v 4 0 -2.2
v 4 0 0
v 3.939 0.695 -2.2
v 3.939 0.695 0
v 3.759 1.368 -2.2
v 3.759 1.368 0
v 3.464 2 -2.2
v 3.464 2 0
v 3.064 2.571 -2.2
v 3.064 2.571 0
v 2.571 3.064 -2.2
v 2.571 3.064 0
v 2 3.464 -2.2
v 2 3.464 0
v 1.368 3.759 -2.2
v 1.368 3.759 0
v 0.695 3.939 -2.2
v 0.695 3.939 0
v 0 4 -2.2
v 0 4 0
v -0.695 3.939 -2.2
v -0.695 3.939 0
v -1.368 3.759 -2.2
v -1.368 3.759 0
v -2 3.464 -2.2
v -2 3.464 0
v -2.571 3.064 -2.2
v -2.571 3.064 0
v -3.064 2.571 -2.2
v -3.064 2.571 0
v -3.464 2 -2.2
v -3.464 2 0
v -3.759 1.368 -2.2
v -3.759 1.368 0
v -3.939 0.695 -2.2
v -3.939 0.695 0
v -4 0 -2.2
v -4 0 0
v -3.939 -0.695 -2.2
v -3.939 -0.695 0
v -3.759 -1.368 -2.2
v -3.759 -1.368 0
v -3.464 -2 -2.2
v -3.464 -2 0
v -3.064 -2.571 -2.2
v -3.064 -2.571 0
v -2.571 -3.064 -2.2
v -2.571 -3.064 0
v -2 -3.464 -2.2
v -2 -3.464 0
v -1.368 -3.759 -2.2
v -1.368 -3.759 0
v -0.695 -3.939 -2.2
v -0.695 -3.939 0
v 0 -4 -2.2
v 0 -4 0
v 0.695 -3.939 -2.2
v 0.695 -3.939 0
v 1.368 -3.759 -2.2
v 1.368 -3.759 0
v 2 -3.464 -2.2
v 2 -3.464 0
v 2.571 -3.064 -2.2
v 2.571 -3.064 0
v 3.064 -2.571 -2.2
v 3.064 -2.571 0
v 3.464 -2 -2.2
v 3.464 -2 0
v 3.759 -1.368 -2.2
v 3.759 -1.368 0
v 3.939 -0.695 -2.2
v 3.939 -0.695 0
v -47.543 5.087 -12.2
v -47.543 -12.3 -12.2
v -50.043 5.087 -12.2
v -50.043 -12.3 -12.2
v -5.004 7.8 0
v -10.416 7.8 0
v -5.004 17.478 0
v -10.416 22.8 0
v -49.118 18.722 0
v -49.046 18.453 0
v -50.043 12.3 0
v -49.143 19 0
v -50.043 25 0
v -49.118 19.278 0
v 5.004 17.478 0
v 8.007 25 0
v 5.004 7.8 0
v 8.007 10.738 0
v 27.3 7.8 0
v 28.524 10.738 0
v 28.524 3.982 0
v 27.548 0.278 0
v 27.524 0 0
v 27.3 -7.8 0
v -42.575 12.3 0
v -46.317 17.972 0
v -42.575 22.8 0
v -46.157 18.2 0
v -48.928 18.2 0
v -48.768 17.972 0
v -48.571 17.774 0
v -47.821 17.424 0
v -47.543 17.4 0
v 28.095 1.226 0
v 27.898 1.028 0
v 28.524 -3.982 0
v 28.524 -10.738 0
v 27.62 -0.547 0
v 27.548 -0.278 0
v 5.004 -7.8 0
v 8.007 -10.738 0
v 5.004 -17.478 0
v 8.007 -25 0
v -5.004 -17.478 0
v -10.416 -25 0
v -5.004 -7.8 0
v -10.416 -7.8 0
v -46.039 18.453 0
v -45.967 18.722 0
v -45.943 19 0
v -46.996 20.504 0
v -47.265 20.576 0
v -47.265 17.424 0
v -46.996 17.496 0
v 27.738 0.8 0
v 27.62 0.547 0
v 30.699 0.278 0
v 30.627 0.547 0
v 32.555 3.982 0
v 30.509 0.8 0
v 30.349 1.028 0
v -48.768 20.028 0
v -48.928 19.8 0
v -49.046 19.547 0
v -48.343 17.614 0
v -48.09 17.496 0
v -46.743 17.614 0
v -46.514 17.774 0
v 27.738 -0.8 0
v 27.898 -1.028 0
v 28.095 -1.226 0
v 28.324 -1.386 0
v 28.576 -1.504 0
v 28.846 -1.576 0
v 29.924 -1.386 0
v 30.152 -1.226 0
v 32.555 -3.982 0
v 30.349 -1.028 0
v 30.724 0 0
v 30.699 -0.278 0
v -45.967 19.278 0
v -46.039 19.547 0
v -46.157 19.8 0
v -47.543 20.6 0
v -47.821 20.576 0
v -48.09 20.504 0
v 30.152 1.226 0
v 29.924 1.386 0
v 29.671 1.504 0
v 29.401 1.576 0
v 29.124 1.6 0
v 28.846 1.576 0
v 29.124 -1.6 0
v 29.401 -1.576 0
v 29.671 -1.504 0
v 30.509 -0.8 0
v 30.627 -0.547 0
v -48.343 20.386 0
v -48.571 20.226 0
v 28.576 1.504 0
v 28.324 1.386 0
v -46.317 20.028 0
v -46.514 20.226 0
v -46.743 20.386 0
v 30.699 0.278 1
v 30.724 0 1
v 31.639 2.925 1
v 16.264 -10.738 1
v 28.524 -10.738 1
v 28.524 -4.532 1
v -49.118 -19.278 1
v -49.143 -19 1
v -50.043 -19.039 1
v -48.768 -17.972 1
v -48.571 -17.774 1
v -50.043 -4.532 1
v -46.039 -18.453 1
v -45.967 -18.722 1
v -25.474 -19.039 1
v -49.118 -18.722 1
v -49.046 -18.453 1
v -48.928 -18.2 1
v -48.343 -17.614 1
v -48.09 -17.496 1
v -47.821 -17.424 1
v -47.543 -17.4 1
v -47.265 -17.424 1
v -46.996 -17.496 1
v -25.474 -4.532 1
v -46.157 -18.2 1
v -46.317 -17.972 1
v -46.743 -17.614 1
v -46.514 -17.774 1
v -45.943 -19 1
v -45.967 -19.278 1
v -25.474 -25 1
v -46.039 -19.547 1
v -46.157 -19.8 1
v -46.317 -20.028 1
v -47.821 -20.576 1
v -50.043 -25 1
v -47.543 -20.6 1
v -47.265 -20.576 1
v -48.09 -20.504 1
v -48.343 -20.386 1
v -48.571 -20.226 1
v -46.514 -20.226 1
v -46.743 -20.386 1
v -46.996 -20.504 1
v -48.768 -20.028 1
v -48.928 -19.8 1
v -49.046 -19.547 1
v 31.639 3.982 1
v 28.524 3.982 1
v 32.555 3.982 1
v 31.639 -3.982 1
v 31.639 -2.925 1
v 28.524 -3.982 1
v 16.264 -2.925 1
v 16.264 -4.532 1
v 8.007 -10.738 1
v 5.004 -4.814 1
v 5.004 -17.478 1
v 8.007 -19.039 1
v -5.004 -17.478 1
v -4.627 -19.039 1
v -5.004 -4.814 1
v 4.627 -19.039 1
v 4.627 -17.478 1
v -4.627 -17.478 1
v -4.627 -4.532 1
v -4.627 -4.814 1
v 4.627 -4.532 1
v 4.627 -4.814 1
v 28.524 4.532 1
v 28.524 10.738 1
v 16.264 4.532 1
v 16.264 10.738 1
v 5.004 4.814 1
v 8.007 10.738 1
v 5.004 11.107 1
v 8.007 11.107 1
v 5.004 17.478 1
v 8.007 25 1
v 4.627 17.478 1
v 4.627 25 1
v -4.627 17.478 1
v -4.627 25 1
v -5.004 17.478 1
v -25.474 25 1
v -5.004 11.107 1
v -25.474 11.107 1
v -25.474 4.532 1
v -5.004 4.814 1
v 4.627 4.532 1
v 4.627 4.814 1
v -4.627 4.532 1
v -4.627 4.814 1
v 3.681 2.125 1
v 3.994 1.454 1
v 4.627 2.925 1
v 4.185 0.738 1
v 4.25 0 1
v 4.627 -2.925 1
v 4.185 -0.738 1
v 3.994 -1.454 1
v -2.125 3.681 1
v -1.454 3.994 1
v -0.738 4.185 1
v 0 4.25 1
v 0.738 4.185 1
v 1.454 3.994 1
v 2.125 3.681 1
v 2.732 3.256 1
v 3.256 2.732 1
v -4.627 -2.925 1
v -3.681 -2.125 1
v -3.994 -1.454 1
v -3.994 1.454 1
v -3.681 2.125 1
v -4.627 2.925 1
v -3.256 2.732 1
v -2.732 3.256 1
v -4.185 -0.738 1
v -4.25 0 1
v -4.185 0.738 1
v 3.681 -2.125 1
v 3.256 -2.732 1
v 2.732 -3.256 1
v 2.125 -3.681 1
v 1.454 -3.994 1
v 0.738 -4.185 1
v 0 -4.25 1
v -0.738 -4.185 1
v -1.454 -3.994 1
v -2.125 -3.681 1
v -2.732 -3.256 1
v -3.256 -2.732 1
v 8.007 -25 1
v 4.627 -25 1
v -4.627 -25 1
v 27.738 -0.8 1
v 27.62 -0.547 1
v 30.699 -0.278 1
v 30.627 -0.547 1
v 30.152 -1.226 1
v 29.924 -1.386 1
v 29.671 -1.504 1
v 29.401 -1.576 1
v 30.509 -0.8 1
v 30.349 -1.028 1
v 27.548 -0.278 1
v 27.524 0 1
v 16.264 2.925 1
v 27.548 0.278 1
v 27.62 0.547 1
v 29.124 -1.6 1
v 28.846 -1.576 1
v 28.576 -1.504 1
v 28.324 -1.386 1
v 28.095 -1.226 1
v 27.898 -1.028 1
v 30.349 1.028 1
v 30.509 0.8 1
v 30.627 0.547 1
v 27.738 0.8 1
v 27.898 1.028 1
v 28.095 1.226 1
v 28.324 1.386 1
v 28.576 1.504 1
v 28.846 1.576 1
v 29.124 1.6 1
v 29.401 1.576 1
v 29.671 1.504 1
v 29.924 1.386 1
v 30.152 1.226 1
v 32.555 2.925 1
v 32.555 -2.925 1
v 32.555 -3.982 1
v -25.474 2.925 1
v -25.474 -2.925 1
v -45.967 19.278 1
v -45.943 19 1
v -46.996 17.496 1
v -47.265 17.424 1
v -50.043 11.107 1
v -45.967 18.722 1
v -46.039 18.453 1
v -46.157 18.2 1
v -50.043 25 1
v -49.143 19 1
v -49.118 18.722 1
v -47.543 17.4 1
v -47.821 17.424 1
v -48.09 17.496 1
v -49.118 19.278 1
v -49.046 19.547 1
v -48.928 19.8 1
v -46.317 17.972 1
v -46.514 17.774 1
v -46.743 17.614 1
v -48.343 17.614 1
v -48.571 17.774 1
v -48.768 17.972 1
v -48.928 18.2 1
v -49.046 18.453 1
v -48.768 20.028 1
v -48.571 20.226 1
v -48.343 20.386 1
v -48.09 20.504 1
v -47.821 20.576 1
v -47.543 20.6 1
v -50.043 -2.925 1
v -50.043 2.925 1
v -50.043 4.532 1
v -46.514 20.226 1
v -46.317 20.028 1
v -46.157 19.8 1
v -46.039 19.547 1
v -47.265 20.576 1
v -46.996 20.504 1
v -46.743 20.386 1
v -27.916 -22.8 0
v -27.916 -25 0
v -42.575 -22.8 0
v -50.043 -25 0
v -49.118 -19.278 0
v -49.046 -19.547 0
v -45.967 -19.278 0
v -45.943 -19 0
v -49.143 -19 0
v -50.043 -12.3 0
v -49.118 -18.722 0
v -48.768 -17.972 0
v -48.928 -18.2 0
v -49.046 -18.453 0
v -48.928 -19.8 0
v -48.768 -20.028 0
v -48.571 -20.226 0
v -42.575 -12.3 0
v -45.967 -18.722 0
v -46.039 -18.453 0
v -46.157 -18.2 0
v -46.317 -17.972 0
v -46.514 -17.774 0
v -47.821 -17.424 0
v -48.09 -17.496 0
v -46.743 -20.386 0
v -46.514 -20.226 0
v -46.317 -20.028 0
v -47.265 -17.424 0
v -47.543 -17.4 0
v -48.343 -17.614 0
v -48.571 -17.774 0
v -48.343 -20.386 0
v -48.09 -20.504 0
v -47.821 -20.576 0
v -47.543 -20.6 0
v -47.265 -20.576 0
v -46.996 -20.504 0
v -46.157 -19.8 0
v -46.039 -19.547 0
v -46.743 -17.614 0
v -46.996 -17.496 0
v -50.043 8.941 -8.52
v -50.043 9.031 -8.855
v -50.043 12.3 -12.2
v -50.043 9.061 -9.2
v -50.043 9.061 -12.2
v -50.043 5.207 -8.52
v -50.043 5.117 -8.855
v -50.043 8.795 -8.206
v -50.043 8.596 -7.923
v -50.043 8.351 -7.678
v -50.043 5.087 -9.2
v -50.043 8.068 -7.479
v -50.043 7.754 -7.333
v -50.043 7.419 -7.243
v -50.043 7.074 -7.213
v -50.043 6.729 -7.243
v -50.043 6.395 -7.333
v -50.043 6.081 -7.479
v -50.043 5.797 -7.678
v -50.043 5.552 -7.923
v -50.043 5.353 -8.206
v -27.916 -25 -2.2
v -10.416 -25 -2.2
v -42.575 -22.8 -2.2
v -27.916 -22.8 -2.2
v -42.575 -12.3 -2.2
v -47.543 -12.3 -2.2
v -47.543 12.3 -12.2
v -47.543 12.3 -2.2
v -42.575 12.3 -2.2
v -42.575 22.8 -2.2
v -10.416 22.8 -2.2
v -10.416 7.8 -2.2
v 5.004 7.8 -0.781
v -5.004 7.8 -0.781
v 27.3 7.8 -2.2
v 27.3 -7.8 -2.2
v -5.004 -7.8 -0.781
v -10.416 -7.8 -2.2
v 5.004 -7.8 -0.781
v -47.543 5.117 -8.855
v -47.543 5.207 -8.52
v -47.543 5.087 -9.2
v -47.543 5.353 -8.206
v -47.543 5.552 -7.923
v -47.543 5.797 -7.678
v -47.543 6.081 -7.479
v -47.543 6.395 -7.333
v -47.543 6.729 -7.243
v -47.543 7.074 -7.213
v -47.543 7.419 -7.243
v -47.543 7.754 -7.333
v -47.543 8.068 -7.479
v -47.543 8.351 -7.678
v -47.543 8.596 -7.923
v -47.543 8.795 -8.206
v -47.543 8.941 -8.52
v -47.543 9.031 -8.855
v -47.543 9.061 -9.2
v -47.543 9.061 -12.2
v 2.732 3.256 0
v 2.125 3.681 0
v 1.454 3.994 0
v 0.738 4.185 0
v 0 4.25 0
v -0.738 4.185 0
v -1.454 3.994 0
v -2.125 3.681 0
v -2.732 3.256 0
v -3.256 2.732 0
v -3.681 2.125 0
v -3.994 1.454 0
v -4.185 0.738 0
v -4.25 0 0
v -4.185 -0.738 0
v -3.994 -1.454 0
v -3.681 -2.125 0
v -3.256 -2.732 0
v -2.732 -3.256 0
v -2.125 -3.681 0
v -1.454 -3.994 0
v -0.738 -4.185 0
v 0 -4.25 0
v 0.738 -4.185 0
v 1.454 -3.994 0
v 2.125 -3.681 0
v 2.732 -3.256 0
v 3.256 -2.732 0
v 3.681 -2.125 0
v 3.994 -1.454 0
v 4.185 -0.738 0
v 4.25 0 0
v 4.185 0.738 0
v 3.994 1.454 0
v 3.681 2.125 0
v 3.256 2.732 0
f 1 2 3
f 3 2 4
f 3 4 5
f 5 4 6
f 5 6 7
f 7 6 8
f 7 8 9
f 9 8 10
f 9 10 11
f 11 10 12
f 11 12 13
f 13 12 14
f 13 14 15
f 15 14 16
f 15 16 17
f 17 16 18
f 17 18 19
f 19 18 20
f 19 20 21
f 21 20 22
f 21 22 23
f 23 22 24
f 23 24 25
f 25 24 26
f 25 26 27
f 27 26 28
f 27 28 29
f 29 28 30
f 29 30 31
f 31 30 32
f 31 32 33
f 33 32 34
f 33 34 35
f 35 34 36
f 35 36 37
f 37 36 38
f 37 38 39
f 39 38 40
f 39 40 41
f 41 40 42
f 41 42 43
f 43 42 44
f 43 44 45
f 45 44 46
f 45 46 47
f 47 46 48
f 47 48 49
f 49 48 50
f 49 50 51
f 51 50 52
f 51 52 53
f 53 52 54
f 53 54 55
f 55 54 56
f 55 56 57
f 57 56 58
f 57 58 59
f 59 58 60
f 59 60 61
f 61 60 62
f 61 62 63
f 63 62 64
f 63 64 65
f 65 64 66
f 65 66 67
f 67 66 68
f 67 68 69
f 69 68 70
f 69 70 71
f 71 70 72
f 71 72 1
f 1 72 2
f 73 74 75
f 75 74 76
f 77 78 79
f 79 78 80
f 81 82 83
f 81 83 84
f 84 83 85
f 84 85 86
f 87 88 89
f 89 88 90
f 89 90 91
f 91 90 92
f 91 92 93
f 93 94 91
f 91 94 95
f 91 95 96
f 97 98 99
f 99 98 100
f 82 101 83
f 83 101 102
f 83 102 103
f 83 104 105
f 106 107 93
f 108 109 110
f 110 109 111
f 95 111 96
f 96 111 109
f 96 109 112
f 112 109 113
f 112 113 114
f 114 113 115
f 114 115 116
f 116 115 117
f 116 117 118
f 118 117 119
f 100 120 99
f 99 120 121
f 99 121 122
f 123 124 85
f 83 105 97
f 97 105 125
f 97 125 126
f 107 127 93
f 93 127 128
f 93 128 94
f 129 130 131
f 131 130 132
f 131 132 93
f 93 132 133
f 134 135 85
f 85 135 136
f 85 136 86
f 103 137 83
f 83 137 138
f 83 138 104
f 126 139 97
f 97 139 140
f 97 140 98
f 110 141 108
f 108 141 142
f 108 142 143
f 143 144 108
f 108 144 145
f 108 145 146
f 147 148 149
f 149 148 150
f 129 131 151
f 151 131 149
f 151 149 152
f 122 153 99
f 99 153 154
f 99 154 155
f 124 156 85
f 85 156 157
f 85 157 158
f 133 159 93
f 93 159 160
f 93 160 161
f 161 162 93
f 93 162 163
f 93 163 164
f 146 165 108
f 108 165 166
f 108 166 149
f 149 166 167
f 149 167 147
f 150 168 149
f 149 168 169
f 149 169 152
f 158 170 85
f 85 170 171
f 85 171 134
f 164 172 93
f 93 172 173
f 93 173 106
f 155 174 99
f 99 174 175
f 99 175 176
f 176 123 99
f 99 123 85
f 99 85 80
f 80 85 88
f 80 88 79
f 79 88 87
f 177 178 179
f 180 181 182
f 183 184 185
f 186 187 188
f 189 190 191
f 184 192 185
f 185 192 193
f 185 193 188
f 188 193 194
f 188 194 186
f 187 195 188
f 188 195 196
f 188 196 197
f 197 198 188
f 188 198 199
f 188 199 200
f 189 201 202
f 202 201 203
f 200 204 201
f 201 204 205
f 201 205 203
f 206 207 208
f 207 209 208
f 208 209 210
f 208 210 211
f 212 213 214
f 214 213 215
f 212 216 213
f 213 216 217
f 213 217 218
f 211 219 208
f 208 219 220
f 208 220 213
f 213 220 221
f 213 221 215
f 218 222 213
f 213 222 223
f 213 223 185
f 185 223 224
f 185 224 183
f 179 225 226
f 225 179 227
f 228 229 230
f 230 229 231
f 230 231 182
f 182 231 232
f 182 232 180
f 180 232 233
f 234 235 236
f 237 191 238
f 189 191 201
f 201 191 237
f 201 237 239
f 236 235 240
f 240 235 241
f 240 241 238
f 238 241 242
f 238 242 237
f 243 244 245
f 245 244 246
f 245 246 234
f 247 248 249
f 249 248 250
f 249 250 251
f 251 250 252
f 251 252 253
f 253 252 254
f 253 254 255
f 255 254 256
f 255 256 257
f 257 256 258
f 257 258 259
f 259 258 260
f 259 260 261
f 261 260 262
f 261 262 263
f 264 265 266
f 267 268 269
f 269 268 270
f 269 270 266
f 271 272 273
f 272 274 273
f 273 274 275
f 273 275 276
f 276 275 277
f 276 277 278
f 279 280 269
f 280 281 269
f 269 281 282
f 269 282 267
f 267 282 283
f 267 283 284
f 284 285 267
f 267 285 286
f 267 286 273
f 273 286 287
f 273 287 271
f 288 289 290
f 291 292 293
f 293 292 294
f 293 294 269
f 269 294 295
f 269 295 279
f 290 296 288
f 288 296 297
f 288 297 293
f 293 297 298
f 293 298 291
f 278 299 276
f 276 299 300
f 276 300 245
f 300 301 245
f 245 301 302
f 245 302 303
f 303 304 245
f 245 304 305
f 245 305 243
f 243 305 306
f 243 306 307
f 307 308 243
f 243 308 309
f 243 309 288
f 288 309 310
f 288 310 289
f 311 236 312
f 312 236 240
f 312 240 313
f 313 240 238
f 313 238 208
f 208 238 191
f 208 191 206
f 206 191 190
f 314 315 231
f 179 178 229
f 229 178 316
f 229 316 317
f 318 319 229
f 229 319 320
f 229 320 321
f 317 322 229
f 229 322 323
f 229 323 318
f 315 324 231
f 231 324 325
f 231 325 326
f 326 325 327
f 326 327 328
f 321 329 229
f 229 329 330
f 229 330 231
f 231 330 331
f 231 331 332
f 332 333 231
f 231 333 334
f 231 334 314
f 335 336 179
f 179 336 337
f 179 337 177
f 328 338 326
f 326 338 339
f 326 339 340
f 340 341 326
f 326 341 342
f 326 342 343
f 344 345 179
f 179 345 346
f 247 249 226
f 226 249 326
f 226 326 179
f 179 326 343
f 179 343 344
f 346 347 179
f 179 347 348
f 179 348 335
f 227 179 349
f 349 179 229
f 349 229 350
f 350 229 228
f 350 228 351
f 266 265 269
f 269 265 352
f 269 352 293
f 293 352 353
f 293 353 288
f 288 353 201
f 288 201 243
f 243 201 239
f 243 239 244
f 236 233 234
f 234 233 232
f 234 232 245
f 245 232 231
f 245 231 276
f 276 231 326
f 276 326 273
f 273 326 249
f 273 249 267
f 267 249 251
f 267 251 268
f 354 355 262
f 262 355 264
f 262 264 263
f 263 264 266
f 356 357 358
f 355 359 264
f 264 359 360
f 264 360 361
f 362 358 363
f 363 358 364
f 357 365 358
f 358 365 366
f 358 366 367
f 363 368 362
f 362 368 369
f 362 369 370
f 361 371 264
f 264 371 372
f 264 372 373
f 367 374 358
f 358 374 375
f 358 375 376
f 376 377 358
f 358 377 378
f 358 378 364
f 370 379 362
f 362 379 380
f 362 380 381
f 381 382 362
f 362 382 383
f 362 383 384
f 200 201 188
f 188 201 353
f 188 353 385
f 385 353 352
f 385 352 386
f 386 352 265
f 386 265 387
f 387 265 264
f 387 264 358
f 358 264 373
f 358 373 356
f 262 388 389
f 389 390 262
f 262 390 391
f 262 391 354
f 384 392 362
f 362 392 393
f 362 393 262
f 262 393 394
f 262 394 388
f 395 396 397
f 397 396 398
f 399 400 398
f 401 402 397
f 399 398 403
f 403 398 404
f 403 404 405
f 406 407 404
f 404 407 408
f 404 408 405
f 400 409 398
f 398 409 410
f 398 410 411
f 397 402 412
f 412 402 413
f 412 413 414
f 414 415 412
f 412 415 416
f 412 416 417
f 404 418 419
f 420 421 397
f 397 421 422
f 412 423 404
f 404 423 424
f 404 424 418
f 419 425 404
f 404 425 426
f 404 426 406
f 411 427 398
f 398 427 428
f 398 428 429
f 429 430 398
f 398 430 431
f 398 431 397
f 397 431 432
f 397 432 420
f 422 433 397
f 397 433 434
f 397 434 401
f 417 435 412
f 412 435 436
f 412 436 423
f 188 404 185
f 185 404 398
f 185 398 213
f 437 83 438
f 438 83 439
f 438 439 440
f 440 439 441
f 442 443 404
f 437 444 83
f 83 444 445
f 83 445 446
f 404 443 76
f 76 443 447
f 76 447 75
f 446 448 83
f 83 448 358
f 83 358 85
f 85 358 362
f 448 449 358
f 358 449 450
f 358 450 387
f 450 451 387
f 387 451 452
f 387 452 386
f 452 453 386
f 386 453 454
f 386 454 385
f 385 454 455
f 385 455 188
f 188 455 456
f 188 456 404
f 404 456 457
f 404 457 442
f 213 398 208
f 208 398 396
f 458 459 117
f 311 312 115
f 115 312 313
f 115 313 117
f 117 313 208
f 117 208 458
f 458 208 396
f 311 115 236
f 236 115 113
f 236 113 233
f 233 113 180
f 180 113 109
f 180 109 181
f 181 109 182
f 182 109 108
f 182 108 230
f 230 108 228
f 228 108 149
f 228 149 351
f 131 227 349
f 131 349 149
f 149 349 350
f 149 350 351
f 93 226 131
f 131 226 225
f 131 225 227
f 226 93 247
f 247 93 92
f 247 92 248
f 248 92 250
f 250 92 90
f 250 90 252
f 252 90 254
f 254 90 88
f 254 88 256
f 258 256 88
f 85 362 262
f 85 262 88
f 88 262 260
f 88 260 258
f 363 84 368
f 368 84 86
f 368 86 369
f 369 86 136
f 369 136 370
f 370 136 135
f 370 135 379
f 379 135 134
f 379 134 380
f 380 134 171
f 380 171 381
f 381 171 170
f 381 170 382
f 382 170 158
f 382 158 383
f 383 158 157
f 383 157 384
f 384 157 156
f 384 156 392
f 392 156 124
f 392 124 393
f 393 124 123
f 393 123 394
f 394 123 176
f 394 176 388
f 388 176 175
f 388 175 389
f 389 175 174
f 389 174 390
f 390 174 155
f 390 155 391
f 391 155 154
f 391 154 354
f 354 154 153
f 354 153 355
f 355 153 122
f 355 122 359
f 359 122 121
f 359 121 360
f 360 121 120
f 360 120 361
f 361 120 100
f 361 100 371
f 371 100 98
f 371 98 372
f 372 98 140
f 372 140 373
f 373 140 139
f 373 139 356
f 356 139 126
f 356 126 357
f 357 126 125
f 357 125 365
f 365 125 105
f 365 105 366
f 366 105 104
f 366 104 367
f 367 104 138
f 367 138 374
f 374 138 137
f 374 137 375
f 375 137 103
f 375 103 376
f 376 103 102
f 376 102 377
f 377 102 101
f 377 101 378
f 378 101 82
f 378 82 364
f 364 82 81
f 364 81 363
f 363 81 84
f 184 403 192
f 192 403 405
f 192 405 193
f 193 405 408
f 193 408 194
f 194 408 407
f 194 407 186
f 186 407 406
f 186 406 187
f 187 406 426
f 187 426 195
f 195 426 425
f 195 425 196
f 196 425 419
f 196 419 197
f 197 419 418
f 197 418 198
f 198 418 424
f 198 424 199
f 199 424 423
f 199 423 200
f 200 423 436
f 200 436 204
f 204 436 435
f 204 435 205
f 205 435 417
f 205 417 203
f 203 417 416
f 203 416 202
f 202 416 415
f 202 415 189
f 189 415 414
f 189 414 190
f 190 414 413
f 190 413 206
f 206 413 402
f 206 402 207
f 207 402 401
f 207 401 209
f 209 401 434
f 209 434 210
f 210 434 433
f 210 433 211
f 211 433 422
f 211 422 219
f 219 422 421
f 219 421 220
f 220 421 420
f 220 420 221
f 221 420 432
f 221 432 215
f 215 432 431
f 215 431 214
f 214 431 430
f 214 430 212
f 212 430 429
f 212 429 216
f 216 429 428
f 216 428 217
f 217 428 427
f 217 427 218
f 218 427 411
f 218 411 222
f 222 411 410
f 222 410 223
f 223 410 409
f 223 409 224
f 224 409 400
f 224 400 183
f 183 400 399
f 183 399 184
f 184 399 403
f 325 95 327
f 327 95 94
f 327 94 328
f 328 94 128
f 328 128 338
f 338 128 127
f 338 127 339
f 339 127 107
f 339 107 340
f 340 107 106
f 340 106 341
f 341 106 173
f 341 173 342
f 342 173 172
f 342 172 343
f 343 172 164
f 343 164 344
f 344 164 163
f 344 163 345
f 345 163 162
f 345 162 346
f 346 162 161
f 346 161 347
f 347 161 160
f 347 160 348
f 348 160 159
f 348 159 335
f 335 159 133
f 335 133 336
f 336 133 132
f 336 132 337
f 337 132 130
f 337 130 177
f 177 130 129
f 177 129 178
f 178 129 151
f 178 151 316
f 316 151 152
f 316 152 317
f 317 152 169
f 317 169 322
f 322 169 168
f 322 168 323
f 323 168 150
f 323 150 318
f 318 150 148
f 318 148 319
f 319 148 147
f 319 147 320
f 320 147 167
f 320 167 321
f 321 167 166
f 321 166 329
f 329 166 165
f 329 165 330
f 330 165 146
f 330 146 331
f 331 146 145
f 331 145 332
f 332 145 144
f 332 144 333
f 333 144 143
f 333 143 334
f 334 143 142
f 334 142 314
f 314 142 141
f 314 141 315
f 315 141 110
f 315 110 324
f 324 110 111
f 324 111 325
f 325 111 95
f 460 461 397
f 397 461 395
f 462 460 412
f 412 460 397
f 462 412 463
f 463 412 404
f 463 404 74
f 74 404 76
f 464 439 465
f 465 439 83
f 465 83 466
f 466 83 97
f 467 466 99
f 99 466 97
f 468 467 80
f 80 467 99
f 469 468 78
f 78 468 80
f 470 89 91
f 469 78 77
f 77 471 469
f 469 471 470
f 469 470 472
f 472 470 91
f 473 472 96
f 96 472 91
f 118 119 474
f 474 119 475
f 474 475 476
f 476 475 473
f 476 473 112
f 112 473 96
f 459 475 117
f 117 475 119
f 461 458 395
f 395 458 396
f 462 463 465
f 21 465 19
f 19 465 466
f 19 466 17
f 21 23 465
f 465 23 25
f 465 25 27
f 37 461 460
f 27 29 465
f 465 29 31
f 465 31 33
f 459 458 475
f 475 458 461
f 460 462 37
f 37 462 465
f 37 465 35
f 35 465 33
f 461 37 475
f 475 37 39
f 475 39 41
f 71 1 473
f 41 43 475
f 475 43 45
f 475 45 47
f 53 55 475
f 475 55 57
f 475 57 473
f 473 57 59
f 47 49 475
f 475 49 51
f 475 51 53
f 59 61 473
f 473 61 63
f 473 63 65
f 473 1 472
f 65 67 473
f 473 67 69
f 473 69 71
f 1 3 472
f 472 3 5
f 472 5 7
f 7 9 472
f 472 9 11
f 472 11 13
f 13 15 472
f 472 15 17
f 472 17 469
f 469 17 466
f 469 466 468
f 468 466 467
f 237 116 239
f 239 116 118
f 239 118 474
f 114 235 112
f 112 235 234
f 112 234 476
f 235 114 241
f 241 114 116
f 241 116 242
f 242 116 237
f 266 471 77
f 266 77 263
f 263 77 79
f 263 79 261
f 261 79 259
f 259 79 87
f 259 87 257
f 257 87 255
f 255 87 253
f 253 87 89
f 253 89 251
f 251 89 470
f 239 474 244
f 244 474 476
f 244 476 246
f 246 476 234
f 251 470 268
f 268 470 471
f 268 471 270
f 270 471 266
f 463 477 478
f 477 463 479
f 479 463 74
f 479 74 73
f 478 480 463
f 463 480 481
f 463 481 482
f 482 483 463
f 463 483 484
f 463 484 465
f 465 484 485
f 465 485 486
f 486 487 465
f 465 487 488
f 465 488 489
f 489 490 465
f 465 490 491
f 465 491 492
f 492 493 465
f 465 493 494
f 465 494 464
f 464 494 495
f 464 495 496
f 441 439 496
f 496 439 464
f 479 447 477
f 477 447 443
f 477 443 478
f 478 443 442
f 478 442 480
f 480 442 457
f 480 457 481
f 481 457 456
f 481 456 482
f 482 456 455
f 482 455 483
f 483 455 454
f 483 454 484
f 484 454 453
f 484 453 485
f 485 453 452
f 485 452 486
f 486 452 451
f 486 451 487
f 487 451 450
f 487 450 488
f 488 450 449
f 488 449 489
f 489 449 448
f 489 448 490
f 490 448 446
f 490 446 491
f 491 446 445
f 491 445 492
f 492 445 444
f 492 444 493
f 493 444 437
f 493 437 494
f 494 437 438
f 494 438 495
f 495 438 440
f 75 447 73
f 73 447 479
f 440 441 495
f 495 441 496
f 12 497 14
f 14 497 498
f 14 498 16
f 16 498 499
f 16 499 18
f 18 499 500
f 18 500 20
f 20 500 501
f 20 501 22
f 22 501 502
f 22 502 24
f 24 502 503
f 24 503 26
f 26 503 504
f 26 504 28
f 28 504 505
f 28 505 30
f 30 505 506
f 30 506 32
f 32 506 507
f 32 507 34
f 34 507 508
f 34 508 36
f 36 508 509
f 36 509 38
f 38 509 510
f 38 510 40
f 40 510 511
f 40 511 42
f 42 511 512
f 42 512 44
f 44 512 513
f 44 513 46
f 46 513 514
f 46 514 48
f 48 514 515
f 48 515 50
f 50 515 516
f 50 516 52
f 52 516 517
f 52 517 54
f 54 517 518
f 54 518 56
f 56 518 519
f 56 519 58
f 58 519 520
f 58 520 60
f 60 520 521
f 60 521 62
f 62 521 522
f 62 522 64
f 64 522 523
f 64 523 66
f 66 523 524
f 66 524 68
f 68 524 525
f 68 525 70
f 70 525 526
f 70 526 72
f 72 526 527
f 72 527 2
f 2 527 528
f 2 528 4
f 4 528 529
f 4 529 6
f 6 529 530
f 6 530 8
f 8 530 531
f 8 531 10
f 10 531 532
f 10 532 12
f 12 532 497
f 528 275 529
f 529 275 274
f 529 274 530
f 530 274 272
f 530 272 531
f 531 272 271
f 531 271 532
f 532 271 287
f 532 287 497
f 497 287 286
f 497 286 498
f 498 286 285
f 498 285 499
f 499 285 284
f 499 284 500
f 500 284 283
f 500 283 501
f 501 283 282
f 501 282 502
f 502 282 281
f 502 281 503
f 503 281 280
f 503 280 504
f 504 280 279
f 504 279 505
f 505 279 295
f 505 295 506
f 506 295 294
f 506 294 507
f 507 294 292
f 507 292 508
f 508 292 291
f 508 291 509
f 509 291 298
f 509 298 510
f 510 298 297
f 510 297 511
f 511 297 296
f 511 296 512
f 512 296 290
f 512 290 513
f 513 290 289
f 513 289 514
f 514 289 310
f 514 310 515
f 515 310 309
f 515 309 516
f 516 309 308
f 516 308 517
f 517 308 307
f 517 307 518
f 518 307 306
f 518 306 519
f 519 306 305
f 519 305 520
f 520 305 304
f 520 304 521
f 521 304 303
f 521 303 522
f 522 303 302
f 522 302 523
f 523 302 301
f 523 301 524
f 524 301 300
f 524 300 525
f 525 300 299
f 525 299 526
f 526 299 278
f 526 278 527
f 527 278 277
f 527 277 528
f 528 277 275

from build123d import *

# Parameters (mm, degrees)
SKETCH4_R           = 1.6
BOSS_EXTRUDE2_DEPTH = 1
BOSS_EXTRUDE3_DEPTH = 2.2
SKETCH6_R           = 4
SKETCH6_W           = 10.008556046
SKETCH6_H           = 9.470821567
CUT_EXTRUDE1_DEPTH  = 4.2
CUT_EXTRUDE2_DEPTH  = 10.008556
SKETCH8_W           = 2.5
SKETCH8_H           = 24.6
BOSS_EXTRUDE4_DEPTH = 10
CUT_EXTRUDE3_REACH  = 84.598
SKETCH10_R          = 4.25
CUT_EXTRUDE4_DEPTH  = 1


with BuildPart() as part:
    # Sketch4 → Boss-Extrude2 (new body)
    with BuildSketch(Plane.XY):
        Polygon((-50.042780229, 25), (8.006844837, 25), (8.006844837, 10.737807635), (28.52438473, 10.737807635), (28.52438473, 3.982032304), (32.555371359, 3.982032304), (32.555371359, -3.982032304), (28.52438473, -3.982032304), (28.52438473, -10.737807635), (8.006844837, -10.737807635), (8.006844837, -25), (-50.042780229, -25), align=None)
        with Locations((-47.542780229, 19)):
            Circle(SKETCH4_R, mode=Mode.SUBTRACT)
        with Locations((-47.542780229, -19)):
            Circle(SKETCH4_R, mode=Mode.SUBTRACT)
        with Locations((29.123529126, 0)):
            Circle(SKETCH4_R, mode=Mode.SUBTRACT)
    extrude(amount=BOSS_EXTRUDE2_DEPTH)

    # Sketch5 → Boss-Extrude3 (add)
    with BuildSketch(Plane(origin=(0, 0, 0), x_dir=(-1, 0, 0), z_dir=(0, 0, -1))):
        Polygon((10.130686795, 7.8), (-27.3, 7.8), (-27.3, -7.8), (10.130686795, -7.8), (10.416393564, -7.8), (10.416393564, -8), (10.416393564, -25), (27.916393564, -25), (27.916393564, -22.8), (42.575341492, -22.8), (42.575341492, -12.3), (50.042780229, -12.3), (50.042780229, 12.3), (42.575341492, 12.3), (42.575341492, 22.8), (10.416393564, 22.8), (10.416393564, 8), (10.416393564, 7.8), align=None)
    extrude(amount=BOSS_EXTRUDE3_DEPTH)

    # Sketch6 → Cut-Extrude1 (cut, through all)
    with BuildSketch(Plane.XY.offset(1)):
        Circle(SKETCH6_R)
        with Locations((0, -12.74225562)):
            Rectangle(SKETCH6_W, SKETCH6_H)
        with Locations((0, 12.74225562)):
            Rectangle(SKETCH6_W, SKETCH6_H)
    extrude(amount=-CUT_EXTRUDE1_DEPTH, mode=Mode.SUBTRACT)

    # Sketch7 → Cut-Extrude2 (cut)
    with BuildSketch(Plane(origin=(-5.004278023, 0, 0), x_dir=(0, 0, -1), z_dir=(1, 0, 0))):
        Polygon((0.904413332, -8.006844837), (-1, -4.814198104), (-1, -8.006844837), (0, -8.006844837), align=None)
    cut_extrude2 = extrude(amount=CUT_EXTRUDE2_DEPTH, mode=Mode.SUBTRACT)

    # Mirror1: Cut-Extrude2 across plane
    add(cut_extrude2.mirror(Plane.ZX), mode=Mode.SUBTRACT)

    # Sketch8 → Boss-Extrude4 (add)
    with BuildSketch(Plane(origin=(0, 0, -2.2), x_dir=(-1, 0, 0), z_dir=(0, 0, -1))):
        with Locations((48.792780229, 0)):
            Rectangle(SKETCH8_W, SKETCH8_H)
    extrude(amount=BOSS_EXTRUDE4_DEPTH)

    # Sketch9 → Cut-Extrude3 (cut, up to next)
    with BuildSketch(Plane.ZY.offset(50.042780229), mode=Mode.PRIVATE) as cut_extrude3_sk1:
        with BuildLine():
            Line((-9.2, 9.061272662), (-12.2, 9.061272662))
            Line((-12.2, 9.061272662), (-12.2, 5.087082771))
            Line((-12.2, 5.087082771), (-9.2, 5.087082771))
            ThreePointArc((-9.2, 5.087082771), (-7.212905055, 7.074177716), (-9.2, 9.061272662))
        make_face()
    cut_extrude3_tool1 = extrude(cut_extrude3_sk1.sketch, amount=-CUT_EXTRUDE3_REACH, mode=Mode.PRIVATE) & part.part
    add(cut_extrude3_tool1.solids().sort_by_distance((-50.04278, 7.074178, -9.898105))[0], mode=Mode.SUBTRACT)

    # Sketch10 → Cut-Extrude4 (cut)
    with BuildSketch(Plane.XY.offset(1)):
        Circle(SKETCH10_R)
    extrude(amount=-CUT_EXTRUDE4_DEPTH, mode=Mode.SUBTRACT)


solid = part.part
